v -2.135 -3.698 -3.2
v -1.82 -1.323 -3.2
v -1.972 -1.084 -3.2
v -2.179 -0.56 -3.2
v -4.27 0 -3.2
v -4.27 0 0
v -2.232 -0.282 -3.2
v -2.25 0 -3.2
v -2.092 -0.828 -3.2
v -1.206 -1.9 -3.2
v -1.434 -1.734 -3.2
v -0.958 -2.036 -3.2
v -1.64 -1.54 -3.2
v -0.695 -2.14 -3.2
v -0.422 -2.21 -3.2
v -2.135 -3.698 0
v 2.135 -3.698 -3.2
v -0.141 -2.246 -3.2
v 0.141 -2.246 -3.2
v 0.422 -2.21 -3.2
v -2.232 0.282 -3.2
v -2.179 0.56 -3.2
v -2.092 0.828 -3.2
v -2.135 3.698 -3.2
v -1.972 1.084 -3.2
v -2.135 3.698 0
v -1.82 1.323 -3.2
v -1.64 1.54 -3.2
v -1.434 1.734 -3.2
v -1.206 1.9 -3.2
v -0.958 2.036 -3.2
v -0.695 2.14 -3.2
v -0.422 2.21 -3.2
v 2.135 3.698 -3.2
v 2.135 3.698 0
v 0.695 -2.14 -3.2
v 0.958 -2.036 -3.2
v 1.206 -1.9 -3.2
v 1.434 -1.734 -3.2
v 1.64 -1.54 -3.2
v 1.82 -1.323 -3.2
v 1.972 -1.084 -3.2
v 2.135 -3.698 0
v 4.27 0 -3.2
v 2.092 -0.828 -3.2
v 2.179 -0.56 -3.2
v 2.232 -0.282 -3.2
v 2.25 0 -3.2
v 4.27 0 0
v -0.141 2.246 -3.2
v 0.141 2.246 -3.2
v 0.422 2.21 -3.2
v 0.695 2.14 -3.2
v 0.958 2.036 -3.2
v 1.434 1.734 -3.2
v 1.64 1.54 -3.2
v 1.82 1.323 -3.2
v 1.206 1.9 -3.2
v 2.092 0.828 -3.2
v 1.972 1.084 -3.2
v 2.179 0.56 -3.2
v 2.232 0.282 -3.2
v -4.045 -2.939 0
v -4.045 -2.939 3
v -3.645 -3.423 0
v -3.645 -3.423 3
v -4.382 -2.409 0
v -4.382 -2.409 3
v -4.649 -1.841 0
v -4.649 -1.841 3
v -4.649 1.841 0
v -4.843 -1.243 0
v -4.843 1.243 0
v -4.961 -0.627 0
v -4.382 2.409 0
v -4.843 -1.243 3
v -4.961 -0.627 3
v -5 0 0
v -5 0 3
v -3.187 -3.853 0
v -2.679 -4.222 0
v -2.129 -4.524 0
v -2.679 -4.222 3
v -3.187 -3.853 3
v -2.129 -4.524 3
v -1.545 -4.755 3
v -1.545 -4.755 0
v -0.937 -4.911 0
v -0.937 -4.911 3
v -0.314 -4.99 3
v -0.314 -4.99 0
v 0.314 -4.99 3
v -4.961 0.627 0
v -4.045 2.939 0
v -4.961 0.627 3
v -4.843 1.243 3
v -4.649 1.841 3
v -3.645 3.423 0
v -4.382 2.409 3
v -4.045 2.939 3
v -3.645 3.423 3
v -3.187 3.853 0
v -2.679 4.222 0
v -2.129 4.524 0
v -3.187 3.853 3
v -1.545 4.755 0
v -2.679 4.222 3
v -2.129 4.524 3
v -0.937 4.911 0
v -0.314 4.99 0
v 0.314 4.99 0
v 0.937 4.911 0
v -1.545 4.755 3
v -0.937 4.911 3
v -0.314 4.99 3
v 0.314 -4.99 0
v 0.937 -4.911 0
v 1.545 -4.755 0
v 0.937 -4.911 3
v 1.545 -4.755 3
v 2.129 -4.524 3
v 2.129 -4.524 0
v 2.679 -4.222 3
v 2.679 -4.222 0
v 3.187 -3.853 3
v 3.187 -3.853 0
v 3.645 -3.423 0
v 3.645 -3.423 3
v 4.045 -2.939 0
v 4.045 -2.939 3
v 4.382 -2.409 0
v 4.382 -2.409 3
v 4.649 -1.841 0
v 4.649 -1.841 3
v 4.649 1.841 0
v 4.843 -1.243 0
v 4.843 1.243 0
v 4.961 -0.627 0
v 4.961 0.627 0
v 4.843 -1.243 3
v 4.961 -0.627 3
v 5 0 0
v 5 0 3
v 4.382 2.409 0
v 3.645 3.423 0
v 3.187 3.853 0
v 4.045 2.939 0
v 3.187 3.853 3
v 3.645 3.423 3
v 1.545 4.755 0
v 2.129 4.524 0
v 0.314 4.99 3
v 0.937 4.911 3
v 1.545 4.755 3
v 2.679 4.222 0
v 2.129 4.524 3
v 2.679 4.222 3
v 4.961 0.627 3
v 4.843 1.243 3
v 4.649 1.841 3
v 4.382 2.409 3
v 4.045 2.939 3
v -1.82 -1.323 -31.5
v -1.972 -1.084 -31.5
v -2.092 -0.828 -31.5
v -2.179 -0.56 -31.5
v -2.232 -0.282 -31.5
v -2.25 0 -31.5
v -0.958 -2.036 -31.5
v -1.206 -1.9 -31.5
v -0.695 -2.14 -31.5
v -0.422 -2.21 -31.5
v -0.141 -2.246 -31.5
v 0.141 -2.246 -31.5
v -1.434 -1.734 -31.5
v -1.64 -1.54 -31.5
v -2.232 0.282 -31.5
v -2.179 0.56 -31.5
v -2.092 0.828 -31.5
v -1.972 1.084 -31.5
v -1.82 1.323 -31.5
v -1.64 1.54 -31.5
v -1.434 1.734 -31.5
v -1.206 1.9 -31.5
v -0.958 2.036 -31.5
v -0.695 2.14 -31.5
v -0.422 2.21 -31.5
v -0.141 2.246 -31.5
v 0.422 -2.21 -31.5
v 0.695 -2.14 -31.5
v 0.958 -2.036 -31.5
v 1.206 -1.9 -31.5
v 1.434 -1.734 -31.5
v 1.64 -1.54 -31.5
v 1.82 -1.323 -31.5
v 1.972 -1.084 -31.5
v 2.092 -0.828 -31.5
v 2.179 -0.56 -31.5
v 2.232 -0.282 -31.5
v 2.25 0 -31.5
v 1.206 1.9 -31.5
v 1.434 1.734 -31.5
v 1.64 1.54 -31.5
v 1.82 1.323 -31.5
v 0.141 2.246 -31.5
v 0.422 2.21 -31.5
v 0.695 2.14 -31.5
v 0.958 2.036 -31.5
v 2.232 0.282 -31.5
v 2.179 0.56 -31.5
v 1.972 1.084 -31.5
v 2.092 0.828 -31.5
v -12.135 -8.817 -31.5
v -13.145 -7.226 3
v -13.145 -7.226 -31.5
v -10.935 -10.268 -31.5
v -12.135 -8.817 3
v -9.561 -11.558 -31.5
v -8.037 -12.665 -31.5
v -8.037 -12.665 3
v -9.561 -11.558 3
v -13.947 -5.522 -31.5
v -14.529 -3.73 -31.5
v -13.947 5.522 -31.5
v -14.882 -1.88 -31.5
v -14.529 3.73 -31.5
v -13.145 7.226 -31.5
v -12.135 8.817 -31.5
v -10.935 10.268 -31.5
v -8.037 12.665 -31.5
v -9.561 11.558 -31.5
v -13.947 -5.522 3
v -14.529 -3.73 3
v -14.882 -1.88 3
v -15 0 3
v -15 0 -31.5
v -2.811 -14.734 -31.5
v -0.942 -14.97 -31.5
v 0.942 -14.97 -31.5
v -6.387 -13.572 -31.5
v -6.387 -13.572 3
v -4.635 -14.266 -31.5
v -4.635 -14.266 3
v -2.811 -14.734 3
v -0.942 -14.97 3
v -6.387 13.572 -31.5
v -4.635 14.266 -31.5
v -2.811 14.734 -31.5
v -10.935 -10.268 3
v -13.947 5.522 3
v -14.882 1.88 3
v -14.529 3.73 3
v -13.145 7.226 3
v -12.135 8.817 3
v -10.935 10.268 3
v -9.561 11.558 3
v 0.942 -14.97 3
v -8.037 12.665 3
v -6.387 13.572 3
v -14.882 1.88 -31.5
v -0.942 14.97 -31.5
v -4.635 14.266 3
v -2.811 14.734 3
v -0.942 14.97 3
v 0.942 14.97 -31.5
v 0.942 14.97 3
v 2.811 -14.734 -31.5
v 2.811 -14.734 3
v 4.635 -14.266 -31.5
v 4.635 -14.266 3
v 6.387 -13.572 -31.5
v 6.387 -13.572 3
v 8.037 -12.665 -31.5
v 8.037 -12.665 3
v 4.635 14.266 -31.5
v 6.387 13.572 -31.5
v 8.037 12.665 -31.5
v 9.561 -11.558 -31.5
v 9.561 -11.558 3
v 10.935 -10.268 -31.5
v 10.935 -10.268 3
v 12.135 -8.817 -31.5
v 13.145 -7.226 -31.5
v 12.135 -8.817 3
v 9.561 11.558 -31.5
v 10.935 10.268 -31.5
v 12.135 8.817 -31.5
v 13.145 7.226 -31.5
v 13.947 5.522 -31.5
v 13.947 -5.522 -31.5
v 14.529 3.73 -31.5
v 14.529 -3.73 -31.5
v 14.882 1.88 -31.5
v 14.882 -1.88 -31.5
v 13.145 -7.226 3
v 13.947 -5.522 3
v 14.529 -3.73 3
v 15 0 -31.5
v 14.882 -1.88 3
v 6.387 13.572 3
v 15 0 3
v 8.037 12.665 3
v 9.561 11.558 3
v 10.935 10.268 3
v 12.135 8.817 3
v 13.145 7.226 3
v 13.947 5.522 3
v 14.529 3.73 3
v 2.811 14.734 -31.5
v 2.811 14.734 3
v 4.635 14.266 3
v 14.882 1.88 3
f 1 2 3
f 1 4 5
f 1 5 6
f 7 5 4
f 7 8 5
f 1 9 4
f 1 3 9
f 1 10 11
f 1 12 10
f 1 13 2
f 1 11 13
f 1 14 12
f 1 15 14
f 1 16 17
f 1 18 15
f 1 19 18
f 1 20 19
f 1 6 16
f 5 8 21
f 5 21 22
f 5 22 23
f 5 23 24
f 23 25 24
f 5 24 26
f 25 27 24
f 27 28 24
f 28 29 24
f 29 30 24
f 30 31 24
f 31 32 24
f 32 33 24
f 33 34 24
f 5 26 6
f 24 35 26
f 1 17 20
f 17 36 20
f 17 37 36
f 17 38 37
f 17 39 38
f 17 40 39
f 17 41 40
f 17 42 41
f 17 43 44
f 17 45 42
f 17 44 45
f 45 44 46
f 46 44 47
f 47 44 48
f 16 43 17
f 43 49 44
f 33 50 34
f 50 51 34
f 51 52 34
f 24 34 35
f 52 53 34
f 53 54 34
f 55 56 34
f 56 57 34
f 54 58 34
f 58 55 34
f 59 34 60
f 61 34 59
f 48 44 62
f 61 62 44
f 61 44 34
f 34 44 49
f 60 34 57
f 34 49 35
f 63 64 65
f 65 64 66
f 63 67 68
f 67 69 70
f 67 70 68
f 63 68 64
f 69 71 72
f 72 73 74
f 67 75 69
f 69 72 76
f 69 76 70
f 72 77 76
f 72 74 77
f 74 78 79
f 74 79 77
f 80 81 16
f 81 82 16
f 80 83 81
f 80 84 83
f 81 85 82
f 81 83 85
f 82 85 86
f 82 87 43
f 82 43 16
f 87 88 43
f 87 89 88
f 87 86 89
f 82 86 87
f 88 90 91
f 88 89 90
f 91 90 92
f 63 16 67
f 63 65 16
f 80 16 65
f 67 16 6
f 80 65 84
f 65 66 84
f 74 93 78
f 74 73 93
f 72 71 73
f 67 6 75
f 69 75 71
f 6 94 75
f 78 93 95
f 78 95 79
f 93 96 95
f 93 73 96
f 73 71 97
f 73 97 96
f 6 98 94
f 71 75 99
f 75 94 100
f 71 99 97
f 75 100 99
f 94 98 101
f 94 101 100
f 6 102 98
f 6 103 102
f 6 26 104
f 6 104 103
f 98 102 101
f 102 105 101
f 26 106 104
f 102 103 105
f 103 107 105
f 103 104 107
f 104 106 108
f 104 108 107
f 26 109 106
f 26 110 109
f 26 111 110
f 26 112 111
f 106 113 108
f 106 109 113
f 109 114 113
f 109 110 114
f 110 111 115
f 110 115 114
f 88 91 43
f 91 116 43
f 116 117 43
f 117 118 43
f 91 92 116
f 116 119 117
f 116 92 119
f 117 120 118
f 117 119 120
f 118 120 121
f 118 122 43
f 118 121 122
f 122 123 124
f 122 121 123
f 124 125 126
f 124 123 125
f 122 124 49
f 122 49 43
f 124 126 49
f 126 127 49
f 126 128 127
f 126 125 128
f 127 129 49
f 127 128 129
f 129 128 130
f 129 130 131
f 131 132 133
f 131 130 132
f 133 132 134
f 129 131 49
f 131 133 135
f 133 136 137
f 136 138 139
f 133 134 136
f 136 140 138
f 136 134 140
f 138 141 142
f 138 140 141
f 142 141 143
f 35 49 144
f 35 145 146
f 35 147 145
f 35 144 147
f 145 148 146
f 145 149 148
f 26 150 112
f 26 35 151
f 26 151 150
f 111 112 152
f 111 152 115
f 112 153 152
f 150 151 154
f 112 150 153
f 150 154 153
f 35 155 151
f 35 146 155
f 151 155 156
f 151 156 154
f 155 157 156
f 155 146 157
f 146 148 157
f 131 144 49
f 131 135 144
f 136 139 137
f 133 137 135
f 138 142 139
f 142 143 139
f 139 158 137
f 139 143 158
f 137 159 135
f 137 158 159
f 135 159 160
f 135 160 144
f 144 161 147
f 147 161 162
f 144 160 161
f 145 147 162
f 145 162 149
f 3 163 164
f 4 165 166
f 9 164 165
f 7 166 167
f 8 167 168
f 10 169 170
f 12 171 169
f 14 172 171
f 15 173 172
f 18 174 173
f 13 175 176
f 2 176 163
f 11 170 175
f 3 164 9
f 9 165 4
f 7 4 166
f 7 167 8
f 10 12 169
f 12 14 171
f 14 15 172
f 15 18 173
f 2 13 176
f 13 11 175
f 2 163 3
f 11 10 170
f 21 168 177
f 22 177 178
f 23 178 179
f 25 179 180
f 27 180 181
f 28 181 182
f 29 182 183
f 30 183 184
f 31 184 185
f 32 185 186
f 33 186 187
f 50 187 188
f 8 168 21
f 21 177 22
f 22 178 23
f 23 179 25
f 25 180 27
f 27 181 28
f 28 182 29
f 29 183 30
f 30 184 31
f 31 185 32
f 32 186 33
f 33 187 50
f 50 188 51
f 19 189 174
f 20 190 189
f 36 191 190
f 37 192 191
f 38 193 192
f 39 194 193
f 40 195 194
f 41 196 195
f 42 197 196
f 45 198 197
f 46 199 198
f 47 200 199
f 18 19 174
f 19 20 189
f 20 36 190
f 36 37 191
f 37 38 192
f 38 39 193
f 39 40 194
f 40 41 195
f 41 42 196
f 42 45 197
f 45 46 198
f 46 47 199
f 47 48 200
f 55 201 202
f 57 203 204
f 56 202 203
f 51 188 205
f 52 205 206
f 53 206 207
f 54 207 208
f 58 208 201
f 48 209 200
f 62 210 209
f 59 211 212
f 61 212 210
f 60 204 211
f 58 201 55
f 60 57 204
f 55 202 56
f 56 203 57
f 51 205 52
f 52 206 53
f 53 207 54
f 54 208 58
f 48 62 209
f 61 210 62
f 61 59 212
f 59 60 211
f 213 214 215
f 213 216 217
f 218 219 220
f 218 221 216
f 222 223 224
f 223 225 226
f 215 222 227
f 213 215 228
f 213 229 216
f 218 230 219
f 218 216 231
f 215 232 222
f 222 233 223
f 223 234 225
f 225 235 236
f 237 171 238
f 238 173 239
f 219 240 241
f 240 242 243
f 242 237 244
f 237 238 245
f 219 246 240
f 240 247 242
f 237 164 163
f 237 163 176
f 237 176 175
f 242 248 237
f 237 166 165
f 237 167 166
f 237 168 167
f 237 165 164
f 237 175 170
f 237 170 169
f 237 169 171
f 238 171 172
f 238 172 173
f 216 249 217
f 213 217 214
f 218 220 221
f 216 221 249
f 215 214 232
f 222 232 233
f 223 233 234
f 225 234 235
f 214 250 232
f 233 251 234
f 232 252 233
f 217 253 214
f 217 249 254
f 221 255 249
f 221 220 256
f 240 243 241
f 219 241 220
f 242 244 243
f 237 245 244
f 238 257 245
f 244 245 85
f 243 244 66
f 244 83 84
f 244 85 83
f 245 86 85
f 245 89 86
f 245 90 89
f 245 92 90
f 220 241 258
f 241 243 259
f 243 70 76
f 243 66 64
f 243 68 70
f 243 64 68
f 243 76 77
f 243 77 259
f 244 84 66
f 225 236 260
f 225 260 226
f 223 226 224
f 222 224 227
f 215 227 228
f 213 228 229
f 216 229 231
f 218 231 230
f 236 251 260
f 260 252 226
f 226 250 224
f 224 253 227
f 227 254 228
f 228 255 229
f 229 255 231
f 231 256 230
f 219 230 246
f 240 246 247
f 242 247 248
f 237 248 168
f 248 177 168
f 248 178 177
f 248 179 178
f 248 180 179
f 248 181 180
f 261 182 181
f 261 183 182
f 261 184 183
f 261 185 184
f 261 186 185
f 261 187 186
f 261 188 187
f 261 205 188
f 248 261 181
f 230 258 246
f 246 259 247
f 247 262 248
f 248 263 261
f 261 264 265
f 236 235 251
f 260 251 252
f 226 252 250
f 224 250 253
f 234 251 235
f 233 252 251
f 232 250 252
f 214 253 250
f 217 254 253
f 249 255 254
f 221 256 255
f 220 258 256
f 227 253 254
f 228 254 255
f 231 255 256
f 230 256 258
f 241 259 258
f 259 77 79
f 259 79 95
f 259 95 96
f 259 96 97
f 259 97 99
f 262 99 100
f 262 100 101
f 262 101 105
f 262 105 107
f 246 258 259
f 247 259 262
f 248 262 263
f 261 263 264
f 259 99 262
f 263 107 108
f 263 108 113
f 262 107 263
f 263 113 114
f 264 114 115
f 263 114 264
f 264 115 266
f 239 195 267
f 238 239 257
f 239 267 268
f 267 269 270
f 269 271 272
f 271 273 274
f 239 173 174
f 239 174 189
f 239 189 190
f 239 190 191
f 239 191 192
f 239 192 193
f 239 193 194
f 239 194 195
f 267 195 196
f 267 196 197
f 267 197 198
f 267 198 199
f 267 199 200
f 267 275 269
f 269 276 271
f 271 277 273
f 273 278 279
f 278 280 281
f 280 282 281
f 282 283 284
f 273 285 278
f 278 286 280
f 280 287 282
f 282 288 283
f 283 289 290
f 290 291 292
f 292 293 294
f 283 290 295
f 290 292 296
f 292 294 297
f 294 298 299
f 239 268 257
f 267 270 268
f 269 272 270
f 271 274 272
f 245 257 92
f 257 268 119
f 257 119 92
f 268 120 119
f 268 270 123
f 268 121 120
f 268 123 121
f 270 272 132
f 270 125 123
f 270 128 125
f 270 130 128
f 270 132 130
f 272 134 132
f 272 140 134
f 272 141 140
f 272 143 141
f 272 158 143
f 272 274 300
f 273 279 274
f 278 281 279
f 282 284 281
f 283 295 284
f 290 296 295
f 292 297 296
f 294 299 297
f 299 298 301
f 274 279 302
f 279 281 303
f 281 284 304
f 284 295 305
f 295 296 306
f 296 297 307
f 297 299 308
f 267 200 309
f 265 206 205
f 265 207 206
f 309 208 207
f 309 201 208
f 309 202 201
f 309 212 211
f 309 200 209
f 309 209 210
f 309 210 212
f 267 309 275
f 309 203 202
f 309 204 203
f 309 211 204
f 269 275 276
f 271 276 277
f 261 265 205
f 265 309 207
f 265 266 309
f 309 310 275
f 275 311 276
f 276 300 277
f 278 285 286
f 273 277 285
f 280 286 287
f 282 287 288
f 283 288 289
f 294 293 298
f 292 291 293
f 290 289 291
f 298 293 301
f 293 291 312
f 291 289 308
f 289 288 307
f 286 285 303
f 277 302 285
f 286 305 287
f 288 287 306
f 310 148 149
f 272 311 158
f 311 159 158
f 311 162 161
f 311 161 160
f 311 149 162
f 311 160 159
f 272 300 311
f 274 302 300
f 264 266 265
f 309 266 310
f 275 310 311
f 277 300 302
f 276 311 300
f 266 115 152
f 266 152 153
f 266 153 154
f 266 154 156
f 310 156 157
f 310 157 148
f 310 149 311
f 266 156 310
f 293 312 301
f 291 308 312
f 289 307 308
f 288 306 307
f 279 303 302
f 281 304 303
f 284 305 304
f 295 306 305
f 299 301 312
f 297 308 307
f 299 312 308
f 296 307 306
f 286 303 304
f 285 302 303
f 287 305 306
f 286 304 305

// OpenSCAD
$fn = 50;


difference() {
	union() {
		translate(v = [0, 0, -31.5000000000]) {
			cylinder(h = 34.5000000000, r = 15.0000000000);
		}
	}
	union() {
		translate(v = [0, 0, 0]) {
			rotate(a = [0, 0, 0]) {
				difference() {
					union() {
						translate(v = [0, 0, -3.2000000000]) {
							linear_extrude(height = 3.2000000000) {
								polygon(points = [[4.2698000000, 0.0000000000], [2.1349000000, 3.6977552691], [-2.1349000000, 3.6977552691], [-4.2698000000, 0.0000000000], [-2.1349000000, -3.6977552691], [2.1349000000, -3.6977552691]]);
							}
						}
					}
					union();
				}
			}
		}
		#cylinder(h = 3, r = 5.0000000000);
		#translate(v = [0, 0, -100.0000000000]) {
			cylinder(h = 200, r = 2.2500000000);
		}
	}
}
